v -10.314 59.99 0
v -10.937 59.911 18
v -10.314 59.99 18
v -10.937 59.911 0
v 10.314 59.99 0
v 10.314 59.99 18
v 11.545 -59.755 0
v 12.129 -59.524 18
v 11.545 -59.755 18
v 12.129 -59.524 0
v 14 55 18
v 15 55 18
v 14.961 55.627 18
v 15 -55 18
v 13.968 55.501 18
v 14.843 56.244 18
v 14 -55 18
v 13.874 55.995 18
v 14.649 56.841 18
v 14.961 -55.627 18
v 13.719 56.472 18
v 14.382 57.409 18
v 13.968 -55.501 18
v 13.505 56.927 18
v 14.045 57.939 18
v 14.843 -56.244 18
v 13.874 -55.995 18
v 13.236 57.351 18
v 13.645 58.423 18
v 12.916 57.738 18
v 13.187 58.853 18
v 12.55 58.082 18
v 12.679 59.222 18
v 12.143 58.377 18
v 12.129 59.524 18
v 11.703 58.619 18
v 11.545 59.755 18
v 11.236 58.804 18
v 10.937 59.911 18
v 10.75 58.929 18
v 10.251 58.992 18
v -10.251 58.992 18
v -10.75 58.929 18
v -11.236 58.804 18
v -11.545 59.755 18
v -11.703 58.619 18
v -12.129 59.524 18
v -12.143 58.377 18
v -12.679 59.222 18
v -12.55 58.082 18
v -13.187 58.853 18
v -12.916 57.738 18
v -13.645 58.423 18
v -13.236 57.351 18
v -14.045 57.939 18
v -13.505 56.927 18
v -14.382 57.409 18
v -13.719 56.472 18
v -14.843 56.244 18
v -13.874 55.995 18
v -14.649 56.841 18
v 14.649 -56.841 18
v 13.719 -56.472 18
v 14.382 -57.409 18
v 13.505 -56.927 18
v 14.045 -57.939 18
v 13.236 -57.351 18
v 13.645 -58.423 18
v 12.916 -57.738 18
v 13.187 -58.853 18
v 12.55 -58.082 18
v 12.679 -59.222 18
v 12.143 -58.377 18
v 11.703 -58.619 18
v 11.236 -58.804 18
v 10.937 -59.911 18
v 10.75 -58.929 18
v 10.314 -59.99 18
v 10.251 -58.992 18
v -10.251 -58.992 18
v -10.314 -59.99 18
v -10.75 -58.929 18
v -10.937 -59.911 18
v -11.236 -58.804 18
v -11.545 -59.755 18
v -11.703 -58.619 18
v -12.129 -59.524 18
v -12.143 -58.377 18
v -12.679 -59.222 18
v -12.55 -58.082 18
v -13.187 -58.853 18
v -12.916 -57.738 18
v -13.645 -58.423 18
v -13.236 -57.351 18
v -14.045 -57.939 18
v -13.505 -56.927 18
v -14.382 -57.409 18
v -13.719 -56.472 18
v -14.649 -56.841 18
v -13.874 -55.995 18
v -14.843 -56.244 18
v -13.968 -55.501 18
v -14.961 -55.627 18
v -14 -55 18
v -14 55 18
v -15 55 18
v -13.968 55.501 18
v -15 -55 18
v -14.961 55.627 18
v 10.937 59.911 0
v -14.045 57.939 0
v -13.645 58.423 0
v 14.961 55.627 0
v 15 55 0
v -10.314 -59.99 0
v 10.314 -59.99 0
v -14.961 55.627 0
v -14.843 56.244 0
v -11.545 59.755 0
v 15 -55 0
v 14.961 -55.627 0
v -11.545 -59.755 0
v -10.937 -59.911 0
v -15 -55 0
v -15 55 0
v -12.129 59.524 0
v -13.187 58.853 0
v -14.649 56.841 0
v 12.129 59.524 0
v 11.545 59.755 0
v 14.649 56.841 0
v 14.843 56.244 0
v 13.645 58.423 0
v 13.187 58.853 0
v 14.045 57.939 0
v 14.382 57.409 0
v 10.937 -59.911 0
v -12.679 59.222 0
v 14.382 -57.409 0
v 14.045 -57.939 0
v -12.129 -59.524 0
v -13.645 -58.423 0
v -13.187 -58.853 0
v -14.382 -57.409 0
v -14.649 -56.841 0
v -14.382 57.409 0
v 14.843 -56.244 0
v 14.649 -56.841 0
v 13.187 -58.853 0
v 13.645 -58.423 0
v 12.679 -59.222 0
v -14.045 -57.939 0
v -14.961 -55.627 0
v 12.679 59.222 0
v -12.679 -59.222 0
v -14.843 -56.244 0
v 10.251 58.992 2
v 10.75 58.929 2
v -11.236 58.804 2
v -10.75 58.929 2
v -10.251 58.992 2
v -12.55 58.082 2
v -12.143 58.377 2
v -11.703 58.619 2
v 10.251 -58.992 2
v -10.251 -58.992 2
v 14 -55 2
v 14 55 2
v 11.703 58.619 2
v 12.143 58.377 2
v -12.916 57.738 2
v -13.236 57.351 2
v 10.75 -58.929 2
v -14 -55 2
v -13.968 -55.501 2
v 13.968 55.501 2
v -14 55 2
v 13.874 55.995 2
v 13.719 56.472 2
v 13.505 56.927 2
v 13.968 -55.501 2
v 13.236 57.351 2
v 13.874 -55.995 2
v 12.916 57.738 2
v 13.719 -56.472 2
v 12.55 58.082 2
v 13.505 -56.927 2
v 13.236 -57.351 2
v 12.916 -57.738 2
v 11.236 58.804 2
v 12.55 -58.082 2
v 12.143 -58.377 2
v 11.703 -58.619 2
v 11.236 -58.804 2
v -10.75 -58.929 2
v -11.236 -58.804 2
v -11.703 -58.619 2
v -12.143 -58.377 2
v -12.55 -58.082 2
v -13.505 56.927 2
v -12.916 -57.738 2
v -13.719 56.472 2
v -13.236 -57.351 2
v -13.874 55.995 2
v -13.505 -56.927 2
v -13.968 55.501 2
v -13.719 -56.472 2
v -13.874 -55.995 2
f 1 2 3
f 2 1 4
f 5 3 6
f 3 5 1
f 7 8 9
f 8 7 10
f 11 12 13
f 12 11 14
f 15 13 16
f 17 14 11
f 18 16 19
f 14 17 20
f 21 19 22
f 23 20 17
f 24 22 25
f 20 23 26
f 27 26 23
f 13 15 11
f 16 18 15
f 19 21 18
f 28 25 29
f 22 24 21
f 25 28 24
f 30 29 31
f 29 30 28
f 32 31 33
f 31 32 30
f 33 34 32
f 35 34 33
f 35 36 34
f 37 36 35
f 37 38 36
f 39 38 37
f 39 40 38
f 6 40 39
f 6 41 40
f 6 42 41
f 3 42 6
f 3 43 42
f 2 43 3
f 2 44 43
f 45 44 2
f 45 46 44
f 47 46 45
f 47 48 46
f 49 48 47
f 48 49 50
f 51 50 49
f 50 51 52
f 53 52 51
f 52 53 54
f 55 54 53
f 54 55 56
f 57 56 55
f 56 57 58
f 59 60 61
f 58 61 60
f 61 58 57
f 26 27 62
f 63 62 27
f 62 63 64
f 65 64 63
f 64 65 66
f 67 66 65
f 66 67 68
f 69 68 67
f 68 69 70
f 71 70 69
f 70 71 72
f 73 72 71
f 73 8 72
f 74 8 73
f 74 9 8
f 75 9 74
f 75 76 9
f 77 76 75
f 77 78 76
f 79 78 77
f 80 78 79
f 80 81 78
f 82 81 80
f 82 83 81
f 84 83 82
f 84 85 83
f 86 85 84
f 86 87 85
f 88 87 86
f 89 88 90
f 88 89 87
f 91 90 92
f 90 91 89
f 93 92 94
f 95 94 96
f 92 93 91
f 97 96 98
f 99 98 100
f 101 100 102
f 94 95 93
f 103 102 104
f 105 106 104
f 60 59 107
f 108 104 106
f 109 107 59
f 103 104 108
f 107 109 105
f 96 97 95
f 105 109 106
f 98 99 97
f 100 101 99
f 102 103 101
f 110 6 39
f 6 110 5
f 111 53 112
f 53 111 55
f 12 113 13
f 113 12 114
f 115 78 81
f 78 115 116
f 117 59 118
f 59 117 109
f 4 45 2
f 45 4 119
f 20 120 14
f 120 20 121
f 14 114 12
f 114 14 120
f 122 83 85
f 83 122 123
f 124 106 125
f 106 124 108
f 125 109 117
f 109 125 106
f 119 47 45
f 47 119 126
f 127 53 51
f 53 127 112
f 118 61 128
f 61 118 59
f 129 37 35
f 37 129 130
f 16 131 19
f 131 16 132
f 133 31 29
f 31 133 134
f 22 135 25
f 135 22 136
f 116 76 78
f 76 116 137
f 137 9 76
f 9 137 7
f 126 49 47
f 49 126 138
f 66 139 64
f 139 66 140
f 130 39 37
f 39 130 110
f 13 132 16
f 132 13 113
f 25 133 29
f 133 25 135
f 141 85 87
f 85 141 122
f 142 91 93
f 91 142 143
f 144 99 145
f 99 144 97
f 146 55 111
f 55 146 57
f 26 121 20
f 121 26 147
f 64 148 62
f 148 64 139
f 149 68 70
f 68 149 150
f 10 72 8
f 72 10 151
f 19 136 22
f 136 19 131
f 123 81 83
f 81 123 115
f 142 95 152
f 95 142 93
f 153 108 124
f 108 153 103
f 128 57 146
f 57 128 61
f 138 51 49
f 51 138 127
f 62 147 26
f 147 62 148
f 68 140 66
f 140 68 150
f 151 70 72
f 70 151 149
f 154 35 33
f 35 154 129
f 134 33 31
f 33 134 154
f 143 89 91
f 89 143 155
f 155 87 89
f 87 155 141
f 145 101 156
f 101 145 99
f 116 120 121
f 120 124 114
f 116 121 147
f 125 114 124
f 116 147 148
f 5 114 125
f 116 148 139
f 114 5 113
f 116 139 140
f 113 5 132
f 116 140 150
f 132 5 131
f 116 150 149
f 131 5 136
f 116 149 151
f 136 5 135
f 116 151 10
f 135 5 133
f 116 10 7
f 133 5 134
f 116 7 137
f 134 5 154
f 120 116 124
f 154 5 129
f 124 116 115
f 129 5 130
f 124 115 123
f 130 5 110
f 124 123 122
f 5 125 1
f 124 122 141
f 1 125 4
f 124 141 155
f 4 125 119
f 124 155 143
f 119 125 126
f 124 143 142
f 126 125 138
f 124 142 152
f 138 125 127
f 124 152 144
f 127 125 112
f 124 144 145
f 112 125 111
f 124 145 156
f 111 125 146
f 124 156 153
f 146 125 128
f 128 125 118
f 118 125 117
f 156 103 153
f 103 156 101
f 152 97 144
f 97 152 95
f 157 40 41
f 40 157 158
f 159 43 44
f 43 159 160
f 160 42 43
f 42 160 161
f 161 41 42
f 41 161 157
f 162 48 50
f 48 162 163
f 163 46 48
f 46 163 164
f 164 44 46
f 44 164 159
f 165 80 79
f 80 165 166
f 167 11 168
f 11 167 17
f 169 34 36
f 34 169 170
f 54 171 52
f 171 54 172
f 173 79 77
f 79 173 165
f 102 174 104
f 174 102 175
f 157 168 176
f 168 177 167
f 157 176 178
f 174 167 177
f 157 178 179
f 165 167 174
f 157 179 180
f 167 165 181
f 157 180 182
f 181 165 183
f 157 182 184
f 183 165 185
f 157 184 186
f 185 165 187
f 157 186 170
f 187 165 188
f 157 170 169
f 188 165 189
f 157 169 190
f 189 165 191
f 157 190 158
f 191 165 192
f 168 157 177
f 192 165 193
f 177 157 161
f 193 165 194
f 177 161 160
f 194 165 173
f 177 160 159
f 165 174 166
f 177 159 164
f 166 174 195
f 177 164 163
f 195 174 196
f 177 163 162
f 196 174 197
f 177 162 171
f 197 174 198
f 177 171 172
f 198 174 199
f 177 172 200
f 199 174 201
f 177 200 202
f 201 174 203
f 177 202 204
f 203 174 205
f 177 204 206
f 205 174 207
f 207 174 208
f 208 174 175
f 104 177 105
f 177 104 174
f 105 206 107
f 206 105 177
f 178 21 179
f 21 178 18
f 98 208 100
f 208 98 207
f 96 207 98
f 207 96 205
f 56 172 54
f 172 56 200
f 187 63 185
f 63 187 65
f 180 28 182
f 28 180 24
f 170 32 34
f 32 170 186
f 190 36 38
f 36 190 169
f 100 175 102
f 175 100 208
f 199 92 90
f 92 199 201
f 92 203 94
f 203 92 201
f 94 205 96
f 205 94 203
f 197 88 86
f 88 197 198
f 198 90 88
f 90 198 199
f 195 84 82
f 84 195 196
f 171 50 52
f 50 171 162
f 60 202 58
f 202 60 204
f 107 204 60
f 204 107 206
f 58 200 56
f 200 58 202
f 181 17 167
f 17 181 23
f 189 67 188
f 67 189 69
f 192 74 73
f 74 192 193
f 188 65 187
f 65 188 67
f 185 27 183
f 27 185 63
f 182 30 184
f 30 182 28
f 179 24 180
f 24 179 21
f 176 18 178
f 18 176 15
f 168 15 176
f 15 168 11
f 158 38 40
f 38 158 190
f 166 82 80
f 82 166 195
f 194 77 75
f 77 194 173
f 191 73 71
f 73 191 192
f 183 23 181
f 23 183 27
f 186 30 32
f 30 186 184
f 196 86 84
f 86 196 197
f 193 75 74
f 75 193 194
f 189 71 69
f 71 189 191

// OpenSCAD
$fn = 50;


difference() {
	union() {
		hull() {
			translate(v = [-10.0000000000, 55.0000000000, 0]) {
				cylinder(h = 18, r = 5);
			}
			translate(v = [10.0000000000, 55.0000000000, 0]) {
				cylinder(h = 18, r = 5);
			}
			translate(v = [-10.0000000000, -55.0000000000, 0]) {
				cylinder(h = 18, r = 5);
			}
			translate(v = [10.0000000000, -55.0000000000, 0]) {
				cylinder(h = 18, r = 5);
			}
		}
	}
	union() {
		translate(v = [0, 0, 2]) {
			hull() {
				translate(v = [-10.0000000000, 55.0000000000, 0]) {
					cylinder(h = 16, r = 4);
				}
				translate(v = [10.0000000000, 55.0000000000, 0]) {
					cylinder(h = 16, r = 4);
				}
				translate(v = [-10.0000000000, -55.0000000000, 0]) {
					cylinder(h = 16, r = 4);
				}
				translate(v = [10.0000000000, -55.0000000000, 0]) {
					cylinder(h = 16, r = 4);
				}
			}
		}
	}
}
